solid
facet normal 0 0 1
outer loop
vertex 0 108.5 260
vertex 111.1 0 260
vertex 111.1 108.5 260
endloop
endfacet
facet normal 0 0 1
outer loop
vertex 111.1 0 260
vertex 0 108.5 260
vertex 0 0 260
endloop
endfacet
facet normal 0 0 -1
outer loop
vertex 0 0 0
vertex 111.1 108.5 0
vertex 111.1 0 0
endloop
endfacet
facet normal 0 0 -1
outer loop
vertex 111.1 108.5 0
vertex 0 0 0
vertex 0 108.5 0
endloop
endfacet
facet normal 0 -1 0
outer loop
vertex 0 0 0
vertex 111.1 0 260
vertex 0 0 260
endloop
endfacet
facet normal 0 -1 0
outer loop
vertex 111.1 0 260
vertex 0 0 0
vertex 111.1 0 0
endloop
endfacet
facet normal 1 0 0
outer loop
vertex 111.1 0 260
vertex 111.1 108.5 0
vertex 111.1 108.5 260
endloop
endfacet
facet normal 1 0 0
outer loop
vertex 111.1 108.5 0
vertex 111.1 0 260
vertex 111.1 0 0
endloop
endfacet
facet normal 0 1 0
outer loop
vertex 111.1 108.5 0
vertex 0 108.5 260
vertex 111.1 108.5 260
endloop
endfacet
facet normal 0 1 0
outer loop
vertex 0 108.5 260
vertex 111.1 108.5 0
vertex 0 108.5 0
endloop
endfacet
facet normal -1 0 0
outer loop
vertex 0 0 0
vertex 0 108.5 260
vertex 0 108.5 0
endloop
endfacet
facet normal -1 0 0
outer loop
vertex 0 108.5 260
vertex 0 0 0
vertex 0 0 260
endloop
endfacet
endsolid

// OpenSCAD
//inside of midleton wooden box with double doors
height=260;
width=111.1;
depth=108.5;

#cube([width,depth,height]);
